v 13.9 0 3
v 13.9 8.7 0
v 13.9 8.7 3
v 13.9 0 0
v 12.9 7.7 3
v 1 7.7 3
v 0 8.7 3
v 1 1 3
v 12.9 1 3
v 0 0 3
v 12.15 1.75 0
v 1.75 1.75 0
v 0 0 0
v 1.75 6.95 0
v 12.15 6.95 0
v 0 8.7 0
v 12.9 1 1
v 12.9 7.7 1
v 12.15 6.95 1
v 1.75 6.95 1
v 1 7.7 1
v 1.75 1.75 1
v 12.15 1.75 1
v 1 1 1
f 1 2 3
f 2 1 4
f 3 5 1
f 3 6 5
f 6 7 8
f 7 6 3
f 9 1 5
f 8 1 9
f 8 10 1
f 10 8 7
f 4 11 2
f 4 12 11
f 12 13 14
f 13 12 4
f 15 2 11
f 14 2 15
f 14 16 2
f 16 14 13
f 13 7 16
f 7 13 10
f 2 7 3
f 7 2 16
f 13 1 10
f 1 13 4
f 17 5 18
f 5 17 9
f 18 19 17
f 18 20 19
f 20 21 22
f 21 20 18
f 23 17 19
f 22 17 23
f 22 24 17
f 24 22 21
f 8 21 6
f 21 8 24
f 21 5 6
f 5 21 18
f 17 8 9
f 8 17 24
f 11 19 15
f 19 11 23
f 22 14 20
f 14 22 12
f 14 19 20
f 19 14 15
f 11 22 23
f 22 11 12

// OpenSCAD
// Yubico USB C touch extender.
wall=1;
hang=.75;
height=3;
width=11.9;
depth=6.7;

module extender() {
  difference() {
    cube([width+2*wall,depth+2*wall,height]);
    translate([wall,wall,1]) cube([width,depth,height]);
    translate([wall+hang,wall+hang,0]) cube([width-2*hang,depth-2*hang,height]);
  }
}
extender();
  
